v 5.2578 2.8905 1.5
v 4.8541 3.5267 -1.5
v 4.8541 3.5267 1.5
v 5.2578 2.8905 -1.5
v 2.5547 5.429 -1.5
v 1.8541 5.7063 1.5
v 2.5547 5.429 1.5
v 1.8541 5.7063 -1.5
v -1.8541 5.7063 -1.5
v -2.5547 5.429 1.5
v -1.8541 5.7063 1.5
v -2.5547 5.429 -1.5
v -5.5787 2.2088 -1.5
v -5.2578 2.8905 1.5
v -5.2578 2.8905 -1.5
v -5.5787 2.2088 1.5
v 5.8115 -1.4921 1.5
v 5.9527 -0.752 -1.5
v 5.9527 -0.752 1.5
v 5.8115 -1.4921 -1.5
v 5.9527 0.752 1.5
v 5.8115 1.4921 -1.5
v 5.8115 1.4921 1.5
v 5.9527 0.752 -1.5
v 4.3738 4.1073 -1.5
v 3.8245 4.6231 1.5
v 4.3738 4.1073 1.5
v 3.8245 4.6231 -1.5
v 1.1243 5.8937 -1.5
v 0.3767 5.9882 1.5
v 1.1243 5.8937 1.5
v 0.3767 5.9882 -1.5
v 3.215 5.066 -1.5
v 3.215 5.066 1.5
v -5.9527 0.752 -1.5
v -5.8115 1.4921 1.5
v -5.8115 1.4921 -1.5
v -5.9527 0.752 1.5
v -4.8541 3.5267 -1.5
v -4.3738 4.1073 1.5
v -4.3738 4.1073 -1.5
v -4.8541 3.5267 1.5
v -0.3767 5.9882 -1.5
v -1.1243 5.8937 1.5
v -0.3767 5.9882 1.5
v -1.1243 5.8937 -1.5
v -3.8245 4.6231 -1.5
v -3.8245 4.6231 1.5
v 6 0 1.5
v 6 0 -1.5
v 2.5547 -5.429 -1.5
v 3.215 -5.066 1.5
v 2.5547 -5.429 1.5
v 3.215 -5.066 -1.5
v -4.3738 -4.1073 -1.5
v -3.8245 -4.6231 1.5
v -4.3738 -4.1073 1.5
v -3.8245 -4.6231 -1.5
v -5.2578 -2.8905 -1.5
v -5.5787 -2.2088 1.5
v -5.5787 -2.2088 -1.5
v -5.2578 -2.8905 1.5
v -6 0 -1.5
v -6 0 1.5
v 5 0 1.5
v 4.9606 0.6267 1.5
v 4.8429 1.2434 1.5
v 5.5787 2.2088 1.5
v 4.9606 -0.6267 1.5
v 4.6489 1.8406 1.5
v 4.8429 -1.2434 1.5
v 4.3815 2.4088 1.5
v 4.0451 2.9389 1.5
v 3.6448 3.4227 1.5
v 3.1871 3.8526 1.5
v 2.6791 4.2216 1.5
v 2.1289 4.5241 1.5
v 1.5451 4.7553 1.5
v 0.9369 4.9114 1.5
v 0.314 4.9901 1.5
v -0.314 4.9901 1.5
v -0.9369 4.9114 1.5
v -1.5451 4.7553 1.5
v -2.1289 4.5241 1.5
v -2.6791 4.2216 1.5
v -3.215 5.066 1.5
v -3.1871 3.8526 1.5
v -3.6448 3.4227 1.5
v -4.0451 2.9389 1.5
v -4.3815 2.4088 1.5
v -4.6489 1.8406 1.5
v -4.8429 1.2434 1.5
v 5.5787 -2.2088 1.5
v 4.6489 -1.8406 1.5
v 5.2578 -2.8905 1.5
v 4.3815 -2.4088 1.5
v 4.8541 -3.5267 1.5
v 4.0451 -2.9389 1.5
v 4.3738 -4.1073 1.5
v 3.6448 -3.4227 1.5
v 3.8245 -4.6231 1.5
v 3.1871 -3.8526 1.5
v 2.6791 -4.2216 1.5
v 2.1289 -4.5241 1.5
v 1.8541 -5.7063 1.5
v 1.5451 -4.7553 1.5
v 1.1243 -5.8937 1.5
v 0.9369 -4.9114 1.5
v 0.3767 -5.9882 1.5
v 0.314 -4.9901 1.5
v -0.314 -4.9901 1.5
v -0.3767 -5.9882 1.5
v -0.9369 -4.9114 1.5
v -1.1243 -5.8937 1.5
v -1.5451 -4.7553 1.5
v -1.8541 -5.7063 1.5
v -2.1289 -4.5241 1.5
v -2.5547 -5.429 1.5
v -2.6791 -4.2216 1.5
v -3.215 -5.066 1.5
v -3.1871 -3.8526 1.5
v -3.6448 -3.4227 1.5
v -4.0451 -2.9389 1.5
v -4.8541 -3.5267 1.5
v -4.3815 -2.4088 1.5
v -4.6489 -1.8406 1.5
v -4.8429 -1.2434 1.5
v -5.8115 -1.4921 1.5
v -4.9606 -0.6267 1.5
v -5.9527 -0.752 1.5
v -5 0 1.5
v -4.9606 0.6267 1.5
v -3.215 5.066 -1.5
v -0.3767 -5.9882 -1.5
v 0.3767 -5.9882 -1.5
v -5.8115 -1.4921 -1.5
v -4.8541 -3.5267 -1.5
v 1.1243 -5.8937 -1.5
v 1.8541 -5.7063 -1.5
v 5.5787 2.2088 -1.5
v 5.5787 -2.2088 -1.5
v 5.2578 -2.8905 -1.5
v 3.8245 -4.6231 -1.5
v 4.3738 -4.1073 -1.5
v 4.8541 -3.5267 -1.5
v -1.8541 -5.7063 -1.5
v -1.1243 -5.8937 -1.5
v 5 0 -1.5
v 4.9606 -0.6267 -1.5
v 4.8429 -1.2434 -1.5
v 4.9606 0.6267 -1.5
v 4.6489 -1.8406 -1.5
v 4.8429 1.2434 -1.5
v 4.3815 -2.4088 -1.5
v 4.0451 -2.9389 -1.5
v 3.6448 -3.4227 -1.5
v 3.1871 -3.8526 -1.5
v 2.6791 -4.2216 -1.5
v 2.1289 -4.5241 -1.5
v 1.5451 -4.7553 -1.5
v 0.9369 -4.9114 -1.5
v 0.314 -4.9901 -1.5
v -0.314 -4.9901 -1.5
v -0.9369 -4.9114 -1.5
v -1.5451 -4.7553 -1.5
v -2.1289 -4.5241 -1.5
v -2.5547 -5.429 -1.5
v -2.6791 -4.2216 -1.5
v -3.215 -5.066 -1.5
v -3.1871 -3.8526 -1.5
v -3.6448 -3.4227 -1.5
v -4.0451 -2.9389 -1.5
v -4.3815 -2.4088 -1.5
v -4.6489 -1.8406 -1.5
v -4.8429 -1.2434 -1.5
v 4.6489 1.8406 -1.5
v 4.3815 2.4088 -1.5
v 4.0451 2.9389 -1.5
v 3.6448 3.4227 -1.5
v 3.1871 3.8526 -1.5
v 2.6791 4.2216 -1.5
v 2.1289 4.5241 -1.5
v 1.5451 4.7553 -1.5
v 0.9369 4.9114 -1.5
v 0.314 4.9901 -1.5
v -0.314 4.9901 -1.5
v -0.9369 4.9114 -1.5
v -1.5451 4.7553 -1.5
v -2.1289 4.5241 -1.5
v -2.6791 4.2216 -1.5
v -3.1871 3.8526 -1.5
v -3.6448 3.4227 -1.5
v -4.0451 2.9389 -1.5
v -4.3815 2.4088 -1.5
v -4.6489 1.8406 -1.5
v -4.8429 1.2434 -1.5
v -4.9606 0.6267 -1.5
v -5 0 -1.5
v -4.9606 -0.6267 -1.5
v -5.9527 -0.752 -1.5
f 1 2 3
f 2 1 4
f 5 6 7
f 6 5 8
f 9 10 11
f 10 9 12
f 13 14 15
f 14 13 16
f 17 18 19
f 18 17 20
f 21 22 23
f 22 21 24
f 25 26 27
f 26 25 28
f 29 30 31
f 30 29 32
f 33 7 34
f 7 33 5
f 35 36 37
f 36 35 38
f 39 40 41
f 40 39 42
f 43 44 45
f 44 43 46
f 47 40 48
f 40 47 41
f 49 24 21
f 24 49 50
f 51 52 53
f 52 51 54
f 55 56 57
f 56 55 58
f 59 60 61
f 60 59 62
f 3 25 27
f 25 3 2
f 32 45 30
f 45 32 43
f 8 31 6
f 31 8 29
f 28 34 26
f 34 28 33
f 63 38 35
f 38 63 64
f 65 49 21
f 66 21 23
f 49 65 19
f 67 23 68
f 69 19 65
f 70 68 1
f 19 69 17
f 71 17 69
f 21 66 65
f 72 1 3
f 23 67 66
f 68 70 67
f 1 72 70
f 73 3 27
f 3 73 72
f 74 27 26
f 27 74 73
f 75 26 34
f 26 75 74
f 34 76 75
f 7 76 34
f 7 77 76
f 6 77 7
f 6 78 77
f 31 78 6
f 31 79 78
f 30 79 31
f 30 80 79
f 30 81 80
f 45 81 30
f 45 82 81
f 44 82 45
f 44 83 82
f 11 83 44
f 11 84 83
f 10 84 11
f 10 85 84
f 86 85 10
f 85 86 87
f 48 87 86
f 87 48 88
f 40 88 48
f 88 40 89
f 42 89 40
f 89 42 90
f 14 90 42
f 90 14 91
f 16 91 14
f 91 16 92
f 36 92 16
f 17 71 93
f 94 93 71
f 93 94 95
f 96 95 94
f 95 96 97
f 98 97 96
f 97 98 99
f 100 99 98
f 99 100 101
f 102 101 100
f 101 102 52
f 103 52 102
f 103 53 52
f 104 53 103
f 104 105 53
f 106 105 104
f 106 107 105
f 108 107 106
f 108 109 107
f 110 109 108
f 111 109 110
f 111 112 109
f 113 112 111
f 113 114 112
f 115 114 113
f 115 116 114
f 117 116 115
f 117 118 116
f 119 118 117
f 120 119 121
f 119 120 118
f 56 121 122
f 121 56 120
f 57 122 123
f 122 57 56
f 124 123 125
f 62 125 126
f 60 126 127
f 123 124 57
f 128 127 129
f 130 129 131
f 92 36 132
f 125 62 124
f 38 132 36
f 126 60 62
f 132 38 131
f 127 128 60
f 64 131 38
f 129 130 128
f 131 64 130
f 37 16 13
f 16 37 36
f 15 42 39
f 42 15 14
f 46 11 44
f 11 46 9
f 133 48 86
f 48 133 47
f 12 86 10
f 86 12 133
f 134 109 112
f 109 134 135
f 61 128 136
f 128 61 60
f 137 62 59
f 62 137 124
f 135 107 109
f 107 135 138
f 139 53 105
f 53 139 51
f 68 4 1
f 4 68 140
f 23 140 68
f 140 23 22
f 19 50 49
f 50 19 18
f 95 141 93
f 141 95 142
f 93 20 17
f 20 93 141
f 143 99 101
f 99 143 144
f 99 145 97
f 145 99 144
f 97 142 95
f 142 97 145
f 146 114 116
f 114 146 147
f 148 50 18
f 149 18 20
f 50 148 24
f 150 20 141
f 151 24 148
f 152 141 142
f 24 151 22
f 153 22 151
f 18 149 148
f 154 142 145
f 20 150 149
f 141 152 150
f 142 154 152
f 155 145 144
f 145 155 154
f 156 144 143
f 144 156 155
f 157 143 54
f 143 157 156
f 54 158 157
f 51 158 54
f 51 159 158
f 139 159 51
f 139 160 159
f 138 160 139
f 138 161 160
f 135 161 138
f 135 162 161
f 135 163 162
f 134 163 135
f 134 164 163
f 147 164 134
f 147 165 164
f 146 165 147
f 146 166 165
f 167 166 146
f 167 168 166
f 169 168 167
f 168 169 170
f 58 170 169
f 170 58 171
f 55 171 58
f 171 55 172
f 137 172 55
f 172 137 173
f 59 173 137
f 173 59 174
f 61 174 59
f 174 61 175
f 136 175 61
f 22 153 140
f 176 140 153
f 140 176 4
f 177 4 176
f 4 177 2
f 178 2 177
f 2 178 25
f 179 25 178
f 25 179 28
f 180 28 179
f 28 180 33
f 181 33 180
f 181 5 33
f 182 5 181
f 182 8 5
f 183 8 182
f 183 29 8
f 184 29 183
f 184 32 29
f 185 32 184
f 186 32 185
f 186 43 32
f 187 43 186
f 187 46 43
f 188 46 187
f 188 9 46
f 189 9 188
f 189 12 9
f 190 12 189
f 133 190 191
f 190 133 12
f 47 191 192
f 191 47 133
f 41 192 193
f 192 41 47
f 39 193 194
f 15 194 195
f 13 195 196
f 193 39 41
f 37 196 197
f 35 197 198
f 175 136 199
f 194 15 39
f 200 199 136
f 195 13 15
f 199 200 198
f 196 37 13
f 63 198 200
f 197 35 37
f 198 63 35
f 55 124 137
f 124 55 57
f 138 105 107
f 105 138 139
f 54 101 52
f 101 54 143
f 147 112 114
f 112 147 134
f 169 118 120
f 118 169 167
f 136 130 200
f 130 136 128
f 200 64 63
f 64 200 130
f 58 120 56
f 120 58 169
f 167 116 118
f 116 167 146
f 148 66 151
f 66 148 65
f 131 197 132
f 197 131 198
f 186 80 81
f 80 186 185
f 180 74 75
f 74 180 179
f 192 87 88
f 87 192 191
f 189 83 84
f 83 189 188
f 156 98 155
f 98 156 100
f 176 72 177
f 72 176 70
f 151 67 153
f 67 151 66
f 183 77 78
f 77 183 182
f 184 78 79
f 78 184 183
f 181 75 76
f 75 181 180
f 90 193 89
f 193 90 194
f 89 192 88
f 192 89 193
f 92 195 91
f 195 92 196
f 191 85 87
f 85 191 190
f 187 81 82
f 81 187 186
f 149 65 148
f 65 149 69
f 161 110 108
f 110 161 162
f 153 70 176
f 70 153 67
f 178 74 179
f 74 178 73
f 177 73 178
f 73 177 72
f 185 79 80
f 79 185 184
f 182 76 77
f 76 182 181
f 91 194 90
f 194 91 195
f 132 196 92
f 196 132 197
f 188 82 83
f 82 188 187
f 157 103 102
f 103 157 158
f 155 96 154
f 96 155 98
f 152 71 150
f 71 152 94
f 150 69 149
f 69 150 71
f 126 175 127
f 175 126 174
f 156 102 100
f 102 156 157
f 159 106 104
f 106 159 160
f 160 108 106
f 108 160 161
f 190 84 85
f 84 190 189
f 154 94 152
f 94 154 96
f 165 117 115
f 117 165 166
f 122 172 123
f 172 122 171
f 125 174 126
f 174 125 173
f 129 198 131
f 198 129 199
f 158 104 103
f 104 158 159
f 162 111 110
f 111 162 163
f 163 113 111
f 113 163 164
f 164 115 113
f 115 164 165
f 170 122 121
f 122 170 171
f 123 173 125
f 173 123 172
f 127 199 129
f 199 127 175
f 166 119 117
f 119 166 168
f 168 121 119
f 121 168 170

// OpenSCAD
$fn = 50;


difference() {
	union() {
		translate(v = [0, 0, -1.5000000000]) {
			cylinder(h = 3, r = 6.0000000000);
		}
	}
	union() {
		translate(v = [0, 0, -100.0000000000]) {
			cylinder(h = 200, r = 5);
		}
	}
}
